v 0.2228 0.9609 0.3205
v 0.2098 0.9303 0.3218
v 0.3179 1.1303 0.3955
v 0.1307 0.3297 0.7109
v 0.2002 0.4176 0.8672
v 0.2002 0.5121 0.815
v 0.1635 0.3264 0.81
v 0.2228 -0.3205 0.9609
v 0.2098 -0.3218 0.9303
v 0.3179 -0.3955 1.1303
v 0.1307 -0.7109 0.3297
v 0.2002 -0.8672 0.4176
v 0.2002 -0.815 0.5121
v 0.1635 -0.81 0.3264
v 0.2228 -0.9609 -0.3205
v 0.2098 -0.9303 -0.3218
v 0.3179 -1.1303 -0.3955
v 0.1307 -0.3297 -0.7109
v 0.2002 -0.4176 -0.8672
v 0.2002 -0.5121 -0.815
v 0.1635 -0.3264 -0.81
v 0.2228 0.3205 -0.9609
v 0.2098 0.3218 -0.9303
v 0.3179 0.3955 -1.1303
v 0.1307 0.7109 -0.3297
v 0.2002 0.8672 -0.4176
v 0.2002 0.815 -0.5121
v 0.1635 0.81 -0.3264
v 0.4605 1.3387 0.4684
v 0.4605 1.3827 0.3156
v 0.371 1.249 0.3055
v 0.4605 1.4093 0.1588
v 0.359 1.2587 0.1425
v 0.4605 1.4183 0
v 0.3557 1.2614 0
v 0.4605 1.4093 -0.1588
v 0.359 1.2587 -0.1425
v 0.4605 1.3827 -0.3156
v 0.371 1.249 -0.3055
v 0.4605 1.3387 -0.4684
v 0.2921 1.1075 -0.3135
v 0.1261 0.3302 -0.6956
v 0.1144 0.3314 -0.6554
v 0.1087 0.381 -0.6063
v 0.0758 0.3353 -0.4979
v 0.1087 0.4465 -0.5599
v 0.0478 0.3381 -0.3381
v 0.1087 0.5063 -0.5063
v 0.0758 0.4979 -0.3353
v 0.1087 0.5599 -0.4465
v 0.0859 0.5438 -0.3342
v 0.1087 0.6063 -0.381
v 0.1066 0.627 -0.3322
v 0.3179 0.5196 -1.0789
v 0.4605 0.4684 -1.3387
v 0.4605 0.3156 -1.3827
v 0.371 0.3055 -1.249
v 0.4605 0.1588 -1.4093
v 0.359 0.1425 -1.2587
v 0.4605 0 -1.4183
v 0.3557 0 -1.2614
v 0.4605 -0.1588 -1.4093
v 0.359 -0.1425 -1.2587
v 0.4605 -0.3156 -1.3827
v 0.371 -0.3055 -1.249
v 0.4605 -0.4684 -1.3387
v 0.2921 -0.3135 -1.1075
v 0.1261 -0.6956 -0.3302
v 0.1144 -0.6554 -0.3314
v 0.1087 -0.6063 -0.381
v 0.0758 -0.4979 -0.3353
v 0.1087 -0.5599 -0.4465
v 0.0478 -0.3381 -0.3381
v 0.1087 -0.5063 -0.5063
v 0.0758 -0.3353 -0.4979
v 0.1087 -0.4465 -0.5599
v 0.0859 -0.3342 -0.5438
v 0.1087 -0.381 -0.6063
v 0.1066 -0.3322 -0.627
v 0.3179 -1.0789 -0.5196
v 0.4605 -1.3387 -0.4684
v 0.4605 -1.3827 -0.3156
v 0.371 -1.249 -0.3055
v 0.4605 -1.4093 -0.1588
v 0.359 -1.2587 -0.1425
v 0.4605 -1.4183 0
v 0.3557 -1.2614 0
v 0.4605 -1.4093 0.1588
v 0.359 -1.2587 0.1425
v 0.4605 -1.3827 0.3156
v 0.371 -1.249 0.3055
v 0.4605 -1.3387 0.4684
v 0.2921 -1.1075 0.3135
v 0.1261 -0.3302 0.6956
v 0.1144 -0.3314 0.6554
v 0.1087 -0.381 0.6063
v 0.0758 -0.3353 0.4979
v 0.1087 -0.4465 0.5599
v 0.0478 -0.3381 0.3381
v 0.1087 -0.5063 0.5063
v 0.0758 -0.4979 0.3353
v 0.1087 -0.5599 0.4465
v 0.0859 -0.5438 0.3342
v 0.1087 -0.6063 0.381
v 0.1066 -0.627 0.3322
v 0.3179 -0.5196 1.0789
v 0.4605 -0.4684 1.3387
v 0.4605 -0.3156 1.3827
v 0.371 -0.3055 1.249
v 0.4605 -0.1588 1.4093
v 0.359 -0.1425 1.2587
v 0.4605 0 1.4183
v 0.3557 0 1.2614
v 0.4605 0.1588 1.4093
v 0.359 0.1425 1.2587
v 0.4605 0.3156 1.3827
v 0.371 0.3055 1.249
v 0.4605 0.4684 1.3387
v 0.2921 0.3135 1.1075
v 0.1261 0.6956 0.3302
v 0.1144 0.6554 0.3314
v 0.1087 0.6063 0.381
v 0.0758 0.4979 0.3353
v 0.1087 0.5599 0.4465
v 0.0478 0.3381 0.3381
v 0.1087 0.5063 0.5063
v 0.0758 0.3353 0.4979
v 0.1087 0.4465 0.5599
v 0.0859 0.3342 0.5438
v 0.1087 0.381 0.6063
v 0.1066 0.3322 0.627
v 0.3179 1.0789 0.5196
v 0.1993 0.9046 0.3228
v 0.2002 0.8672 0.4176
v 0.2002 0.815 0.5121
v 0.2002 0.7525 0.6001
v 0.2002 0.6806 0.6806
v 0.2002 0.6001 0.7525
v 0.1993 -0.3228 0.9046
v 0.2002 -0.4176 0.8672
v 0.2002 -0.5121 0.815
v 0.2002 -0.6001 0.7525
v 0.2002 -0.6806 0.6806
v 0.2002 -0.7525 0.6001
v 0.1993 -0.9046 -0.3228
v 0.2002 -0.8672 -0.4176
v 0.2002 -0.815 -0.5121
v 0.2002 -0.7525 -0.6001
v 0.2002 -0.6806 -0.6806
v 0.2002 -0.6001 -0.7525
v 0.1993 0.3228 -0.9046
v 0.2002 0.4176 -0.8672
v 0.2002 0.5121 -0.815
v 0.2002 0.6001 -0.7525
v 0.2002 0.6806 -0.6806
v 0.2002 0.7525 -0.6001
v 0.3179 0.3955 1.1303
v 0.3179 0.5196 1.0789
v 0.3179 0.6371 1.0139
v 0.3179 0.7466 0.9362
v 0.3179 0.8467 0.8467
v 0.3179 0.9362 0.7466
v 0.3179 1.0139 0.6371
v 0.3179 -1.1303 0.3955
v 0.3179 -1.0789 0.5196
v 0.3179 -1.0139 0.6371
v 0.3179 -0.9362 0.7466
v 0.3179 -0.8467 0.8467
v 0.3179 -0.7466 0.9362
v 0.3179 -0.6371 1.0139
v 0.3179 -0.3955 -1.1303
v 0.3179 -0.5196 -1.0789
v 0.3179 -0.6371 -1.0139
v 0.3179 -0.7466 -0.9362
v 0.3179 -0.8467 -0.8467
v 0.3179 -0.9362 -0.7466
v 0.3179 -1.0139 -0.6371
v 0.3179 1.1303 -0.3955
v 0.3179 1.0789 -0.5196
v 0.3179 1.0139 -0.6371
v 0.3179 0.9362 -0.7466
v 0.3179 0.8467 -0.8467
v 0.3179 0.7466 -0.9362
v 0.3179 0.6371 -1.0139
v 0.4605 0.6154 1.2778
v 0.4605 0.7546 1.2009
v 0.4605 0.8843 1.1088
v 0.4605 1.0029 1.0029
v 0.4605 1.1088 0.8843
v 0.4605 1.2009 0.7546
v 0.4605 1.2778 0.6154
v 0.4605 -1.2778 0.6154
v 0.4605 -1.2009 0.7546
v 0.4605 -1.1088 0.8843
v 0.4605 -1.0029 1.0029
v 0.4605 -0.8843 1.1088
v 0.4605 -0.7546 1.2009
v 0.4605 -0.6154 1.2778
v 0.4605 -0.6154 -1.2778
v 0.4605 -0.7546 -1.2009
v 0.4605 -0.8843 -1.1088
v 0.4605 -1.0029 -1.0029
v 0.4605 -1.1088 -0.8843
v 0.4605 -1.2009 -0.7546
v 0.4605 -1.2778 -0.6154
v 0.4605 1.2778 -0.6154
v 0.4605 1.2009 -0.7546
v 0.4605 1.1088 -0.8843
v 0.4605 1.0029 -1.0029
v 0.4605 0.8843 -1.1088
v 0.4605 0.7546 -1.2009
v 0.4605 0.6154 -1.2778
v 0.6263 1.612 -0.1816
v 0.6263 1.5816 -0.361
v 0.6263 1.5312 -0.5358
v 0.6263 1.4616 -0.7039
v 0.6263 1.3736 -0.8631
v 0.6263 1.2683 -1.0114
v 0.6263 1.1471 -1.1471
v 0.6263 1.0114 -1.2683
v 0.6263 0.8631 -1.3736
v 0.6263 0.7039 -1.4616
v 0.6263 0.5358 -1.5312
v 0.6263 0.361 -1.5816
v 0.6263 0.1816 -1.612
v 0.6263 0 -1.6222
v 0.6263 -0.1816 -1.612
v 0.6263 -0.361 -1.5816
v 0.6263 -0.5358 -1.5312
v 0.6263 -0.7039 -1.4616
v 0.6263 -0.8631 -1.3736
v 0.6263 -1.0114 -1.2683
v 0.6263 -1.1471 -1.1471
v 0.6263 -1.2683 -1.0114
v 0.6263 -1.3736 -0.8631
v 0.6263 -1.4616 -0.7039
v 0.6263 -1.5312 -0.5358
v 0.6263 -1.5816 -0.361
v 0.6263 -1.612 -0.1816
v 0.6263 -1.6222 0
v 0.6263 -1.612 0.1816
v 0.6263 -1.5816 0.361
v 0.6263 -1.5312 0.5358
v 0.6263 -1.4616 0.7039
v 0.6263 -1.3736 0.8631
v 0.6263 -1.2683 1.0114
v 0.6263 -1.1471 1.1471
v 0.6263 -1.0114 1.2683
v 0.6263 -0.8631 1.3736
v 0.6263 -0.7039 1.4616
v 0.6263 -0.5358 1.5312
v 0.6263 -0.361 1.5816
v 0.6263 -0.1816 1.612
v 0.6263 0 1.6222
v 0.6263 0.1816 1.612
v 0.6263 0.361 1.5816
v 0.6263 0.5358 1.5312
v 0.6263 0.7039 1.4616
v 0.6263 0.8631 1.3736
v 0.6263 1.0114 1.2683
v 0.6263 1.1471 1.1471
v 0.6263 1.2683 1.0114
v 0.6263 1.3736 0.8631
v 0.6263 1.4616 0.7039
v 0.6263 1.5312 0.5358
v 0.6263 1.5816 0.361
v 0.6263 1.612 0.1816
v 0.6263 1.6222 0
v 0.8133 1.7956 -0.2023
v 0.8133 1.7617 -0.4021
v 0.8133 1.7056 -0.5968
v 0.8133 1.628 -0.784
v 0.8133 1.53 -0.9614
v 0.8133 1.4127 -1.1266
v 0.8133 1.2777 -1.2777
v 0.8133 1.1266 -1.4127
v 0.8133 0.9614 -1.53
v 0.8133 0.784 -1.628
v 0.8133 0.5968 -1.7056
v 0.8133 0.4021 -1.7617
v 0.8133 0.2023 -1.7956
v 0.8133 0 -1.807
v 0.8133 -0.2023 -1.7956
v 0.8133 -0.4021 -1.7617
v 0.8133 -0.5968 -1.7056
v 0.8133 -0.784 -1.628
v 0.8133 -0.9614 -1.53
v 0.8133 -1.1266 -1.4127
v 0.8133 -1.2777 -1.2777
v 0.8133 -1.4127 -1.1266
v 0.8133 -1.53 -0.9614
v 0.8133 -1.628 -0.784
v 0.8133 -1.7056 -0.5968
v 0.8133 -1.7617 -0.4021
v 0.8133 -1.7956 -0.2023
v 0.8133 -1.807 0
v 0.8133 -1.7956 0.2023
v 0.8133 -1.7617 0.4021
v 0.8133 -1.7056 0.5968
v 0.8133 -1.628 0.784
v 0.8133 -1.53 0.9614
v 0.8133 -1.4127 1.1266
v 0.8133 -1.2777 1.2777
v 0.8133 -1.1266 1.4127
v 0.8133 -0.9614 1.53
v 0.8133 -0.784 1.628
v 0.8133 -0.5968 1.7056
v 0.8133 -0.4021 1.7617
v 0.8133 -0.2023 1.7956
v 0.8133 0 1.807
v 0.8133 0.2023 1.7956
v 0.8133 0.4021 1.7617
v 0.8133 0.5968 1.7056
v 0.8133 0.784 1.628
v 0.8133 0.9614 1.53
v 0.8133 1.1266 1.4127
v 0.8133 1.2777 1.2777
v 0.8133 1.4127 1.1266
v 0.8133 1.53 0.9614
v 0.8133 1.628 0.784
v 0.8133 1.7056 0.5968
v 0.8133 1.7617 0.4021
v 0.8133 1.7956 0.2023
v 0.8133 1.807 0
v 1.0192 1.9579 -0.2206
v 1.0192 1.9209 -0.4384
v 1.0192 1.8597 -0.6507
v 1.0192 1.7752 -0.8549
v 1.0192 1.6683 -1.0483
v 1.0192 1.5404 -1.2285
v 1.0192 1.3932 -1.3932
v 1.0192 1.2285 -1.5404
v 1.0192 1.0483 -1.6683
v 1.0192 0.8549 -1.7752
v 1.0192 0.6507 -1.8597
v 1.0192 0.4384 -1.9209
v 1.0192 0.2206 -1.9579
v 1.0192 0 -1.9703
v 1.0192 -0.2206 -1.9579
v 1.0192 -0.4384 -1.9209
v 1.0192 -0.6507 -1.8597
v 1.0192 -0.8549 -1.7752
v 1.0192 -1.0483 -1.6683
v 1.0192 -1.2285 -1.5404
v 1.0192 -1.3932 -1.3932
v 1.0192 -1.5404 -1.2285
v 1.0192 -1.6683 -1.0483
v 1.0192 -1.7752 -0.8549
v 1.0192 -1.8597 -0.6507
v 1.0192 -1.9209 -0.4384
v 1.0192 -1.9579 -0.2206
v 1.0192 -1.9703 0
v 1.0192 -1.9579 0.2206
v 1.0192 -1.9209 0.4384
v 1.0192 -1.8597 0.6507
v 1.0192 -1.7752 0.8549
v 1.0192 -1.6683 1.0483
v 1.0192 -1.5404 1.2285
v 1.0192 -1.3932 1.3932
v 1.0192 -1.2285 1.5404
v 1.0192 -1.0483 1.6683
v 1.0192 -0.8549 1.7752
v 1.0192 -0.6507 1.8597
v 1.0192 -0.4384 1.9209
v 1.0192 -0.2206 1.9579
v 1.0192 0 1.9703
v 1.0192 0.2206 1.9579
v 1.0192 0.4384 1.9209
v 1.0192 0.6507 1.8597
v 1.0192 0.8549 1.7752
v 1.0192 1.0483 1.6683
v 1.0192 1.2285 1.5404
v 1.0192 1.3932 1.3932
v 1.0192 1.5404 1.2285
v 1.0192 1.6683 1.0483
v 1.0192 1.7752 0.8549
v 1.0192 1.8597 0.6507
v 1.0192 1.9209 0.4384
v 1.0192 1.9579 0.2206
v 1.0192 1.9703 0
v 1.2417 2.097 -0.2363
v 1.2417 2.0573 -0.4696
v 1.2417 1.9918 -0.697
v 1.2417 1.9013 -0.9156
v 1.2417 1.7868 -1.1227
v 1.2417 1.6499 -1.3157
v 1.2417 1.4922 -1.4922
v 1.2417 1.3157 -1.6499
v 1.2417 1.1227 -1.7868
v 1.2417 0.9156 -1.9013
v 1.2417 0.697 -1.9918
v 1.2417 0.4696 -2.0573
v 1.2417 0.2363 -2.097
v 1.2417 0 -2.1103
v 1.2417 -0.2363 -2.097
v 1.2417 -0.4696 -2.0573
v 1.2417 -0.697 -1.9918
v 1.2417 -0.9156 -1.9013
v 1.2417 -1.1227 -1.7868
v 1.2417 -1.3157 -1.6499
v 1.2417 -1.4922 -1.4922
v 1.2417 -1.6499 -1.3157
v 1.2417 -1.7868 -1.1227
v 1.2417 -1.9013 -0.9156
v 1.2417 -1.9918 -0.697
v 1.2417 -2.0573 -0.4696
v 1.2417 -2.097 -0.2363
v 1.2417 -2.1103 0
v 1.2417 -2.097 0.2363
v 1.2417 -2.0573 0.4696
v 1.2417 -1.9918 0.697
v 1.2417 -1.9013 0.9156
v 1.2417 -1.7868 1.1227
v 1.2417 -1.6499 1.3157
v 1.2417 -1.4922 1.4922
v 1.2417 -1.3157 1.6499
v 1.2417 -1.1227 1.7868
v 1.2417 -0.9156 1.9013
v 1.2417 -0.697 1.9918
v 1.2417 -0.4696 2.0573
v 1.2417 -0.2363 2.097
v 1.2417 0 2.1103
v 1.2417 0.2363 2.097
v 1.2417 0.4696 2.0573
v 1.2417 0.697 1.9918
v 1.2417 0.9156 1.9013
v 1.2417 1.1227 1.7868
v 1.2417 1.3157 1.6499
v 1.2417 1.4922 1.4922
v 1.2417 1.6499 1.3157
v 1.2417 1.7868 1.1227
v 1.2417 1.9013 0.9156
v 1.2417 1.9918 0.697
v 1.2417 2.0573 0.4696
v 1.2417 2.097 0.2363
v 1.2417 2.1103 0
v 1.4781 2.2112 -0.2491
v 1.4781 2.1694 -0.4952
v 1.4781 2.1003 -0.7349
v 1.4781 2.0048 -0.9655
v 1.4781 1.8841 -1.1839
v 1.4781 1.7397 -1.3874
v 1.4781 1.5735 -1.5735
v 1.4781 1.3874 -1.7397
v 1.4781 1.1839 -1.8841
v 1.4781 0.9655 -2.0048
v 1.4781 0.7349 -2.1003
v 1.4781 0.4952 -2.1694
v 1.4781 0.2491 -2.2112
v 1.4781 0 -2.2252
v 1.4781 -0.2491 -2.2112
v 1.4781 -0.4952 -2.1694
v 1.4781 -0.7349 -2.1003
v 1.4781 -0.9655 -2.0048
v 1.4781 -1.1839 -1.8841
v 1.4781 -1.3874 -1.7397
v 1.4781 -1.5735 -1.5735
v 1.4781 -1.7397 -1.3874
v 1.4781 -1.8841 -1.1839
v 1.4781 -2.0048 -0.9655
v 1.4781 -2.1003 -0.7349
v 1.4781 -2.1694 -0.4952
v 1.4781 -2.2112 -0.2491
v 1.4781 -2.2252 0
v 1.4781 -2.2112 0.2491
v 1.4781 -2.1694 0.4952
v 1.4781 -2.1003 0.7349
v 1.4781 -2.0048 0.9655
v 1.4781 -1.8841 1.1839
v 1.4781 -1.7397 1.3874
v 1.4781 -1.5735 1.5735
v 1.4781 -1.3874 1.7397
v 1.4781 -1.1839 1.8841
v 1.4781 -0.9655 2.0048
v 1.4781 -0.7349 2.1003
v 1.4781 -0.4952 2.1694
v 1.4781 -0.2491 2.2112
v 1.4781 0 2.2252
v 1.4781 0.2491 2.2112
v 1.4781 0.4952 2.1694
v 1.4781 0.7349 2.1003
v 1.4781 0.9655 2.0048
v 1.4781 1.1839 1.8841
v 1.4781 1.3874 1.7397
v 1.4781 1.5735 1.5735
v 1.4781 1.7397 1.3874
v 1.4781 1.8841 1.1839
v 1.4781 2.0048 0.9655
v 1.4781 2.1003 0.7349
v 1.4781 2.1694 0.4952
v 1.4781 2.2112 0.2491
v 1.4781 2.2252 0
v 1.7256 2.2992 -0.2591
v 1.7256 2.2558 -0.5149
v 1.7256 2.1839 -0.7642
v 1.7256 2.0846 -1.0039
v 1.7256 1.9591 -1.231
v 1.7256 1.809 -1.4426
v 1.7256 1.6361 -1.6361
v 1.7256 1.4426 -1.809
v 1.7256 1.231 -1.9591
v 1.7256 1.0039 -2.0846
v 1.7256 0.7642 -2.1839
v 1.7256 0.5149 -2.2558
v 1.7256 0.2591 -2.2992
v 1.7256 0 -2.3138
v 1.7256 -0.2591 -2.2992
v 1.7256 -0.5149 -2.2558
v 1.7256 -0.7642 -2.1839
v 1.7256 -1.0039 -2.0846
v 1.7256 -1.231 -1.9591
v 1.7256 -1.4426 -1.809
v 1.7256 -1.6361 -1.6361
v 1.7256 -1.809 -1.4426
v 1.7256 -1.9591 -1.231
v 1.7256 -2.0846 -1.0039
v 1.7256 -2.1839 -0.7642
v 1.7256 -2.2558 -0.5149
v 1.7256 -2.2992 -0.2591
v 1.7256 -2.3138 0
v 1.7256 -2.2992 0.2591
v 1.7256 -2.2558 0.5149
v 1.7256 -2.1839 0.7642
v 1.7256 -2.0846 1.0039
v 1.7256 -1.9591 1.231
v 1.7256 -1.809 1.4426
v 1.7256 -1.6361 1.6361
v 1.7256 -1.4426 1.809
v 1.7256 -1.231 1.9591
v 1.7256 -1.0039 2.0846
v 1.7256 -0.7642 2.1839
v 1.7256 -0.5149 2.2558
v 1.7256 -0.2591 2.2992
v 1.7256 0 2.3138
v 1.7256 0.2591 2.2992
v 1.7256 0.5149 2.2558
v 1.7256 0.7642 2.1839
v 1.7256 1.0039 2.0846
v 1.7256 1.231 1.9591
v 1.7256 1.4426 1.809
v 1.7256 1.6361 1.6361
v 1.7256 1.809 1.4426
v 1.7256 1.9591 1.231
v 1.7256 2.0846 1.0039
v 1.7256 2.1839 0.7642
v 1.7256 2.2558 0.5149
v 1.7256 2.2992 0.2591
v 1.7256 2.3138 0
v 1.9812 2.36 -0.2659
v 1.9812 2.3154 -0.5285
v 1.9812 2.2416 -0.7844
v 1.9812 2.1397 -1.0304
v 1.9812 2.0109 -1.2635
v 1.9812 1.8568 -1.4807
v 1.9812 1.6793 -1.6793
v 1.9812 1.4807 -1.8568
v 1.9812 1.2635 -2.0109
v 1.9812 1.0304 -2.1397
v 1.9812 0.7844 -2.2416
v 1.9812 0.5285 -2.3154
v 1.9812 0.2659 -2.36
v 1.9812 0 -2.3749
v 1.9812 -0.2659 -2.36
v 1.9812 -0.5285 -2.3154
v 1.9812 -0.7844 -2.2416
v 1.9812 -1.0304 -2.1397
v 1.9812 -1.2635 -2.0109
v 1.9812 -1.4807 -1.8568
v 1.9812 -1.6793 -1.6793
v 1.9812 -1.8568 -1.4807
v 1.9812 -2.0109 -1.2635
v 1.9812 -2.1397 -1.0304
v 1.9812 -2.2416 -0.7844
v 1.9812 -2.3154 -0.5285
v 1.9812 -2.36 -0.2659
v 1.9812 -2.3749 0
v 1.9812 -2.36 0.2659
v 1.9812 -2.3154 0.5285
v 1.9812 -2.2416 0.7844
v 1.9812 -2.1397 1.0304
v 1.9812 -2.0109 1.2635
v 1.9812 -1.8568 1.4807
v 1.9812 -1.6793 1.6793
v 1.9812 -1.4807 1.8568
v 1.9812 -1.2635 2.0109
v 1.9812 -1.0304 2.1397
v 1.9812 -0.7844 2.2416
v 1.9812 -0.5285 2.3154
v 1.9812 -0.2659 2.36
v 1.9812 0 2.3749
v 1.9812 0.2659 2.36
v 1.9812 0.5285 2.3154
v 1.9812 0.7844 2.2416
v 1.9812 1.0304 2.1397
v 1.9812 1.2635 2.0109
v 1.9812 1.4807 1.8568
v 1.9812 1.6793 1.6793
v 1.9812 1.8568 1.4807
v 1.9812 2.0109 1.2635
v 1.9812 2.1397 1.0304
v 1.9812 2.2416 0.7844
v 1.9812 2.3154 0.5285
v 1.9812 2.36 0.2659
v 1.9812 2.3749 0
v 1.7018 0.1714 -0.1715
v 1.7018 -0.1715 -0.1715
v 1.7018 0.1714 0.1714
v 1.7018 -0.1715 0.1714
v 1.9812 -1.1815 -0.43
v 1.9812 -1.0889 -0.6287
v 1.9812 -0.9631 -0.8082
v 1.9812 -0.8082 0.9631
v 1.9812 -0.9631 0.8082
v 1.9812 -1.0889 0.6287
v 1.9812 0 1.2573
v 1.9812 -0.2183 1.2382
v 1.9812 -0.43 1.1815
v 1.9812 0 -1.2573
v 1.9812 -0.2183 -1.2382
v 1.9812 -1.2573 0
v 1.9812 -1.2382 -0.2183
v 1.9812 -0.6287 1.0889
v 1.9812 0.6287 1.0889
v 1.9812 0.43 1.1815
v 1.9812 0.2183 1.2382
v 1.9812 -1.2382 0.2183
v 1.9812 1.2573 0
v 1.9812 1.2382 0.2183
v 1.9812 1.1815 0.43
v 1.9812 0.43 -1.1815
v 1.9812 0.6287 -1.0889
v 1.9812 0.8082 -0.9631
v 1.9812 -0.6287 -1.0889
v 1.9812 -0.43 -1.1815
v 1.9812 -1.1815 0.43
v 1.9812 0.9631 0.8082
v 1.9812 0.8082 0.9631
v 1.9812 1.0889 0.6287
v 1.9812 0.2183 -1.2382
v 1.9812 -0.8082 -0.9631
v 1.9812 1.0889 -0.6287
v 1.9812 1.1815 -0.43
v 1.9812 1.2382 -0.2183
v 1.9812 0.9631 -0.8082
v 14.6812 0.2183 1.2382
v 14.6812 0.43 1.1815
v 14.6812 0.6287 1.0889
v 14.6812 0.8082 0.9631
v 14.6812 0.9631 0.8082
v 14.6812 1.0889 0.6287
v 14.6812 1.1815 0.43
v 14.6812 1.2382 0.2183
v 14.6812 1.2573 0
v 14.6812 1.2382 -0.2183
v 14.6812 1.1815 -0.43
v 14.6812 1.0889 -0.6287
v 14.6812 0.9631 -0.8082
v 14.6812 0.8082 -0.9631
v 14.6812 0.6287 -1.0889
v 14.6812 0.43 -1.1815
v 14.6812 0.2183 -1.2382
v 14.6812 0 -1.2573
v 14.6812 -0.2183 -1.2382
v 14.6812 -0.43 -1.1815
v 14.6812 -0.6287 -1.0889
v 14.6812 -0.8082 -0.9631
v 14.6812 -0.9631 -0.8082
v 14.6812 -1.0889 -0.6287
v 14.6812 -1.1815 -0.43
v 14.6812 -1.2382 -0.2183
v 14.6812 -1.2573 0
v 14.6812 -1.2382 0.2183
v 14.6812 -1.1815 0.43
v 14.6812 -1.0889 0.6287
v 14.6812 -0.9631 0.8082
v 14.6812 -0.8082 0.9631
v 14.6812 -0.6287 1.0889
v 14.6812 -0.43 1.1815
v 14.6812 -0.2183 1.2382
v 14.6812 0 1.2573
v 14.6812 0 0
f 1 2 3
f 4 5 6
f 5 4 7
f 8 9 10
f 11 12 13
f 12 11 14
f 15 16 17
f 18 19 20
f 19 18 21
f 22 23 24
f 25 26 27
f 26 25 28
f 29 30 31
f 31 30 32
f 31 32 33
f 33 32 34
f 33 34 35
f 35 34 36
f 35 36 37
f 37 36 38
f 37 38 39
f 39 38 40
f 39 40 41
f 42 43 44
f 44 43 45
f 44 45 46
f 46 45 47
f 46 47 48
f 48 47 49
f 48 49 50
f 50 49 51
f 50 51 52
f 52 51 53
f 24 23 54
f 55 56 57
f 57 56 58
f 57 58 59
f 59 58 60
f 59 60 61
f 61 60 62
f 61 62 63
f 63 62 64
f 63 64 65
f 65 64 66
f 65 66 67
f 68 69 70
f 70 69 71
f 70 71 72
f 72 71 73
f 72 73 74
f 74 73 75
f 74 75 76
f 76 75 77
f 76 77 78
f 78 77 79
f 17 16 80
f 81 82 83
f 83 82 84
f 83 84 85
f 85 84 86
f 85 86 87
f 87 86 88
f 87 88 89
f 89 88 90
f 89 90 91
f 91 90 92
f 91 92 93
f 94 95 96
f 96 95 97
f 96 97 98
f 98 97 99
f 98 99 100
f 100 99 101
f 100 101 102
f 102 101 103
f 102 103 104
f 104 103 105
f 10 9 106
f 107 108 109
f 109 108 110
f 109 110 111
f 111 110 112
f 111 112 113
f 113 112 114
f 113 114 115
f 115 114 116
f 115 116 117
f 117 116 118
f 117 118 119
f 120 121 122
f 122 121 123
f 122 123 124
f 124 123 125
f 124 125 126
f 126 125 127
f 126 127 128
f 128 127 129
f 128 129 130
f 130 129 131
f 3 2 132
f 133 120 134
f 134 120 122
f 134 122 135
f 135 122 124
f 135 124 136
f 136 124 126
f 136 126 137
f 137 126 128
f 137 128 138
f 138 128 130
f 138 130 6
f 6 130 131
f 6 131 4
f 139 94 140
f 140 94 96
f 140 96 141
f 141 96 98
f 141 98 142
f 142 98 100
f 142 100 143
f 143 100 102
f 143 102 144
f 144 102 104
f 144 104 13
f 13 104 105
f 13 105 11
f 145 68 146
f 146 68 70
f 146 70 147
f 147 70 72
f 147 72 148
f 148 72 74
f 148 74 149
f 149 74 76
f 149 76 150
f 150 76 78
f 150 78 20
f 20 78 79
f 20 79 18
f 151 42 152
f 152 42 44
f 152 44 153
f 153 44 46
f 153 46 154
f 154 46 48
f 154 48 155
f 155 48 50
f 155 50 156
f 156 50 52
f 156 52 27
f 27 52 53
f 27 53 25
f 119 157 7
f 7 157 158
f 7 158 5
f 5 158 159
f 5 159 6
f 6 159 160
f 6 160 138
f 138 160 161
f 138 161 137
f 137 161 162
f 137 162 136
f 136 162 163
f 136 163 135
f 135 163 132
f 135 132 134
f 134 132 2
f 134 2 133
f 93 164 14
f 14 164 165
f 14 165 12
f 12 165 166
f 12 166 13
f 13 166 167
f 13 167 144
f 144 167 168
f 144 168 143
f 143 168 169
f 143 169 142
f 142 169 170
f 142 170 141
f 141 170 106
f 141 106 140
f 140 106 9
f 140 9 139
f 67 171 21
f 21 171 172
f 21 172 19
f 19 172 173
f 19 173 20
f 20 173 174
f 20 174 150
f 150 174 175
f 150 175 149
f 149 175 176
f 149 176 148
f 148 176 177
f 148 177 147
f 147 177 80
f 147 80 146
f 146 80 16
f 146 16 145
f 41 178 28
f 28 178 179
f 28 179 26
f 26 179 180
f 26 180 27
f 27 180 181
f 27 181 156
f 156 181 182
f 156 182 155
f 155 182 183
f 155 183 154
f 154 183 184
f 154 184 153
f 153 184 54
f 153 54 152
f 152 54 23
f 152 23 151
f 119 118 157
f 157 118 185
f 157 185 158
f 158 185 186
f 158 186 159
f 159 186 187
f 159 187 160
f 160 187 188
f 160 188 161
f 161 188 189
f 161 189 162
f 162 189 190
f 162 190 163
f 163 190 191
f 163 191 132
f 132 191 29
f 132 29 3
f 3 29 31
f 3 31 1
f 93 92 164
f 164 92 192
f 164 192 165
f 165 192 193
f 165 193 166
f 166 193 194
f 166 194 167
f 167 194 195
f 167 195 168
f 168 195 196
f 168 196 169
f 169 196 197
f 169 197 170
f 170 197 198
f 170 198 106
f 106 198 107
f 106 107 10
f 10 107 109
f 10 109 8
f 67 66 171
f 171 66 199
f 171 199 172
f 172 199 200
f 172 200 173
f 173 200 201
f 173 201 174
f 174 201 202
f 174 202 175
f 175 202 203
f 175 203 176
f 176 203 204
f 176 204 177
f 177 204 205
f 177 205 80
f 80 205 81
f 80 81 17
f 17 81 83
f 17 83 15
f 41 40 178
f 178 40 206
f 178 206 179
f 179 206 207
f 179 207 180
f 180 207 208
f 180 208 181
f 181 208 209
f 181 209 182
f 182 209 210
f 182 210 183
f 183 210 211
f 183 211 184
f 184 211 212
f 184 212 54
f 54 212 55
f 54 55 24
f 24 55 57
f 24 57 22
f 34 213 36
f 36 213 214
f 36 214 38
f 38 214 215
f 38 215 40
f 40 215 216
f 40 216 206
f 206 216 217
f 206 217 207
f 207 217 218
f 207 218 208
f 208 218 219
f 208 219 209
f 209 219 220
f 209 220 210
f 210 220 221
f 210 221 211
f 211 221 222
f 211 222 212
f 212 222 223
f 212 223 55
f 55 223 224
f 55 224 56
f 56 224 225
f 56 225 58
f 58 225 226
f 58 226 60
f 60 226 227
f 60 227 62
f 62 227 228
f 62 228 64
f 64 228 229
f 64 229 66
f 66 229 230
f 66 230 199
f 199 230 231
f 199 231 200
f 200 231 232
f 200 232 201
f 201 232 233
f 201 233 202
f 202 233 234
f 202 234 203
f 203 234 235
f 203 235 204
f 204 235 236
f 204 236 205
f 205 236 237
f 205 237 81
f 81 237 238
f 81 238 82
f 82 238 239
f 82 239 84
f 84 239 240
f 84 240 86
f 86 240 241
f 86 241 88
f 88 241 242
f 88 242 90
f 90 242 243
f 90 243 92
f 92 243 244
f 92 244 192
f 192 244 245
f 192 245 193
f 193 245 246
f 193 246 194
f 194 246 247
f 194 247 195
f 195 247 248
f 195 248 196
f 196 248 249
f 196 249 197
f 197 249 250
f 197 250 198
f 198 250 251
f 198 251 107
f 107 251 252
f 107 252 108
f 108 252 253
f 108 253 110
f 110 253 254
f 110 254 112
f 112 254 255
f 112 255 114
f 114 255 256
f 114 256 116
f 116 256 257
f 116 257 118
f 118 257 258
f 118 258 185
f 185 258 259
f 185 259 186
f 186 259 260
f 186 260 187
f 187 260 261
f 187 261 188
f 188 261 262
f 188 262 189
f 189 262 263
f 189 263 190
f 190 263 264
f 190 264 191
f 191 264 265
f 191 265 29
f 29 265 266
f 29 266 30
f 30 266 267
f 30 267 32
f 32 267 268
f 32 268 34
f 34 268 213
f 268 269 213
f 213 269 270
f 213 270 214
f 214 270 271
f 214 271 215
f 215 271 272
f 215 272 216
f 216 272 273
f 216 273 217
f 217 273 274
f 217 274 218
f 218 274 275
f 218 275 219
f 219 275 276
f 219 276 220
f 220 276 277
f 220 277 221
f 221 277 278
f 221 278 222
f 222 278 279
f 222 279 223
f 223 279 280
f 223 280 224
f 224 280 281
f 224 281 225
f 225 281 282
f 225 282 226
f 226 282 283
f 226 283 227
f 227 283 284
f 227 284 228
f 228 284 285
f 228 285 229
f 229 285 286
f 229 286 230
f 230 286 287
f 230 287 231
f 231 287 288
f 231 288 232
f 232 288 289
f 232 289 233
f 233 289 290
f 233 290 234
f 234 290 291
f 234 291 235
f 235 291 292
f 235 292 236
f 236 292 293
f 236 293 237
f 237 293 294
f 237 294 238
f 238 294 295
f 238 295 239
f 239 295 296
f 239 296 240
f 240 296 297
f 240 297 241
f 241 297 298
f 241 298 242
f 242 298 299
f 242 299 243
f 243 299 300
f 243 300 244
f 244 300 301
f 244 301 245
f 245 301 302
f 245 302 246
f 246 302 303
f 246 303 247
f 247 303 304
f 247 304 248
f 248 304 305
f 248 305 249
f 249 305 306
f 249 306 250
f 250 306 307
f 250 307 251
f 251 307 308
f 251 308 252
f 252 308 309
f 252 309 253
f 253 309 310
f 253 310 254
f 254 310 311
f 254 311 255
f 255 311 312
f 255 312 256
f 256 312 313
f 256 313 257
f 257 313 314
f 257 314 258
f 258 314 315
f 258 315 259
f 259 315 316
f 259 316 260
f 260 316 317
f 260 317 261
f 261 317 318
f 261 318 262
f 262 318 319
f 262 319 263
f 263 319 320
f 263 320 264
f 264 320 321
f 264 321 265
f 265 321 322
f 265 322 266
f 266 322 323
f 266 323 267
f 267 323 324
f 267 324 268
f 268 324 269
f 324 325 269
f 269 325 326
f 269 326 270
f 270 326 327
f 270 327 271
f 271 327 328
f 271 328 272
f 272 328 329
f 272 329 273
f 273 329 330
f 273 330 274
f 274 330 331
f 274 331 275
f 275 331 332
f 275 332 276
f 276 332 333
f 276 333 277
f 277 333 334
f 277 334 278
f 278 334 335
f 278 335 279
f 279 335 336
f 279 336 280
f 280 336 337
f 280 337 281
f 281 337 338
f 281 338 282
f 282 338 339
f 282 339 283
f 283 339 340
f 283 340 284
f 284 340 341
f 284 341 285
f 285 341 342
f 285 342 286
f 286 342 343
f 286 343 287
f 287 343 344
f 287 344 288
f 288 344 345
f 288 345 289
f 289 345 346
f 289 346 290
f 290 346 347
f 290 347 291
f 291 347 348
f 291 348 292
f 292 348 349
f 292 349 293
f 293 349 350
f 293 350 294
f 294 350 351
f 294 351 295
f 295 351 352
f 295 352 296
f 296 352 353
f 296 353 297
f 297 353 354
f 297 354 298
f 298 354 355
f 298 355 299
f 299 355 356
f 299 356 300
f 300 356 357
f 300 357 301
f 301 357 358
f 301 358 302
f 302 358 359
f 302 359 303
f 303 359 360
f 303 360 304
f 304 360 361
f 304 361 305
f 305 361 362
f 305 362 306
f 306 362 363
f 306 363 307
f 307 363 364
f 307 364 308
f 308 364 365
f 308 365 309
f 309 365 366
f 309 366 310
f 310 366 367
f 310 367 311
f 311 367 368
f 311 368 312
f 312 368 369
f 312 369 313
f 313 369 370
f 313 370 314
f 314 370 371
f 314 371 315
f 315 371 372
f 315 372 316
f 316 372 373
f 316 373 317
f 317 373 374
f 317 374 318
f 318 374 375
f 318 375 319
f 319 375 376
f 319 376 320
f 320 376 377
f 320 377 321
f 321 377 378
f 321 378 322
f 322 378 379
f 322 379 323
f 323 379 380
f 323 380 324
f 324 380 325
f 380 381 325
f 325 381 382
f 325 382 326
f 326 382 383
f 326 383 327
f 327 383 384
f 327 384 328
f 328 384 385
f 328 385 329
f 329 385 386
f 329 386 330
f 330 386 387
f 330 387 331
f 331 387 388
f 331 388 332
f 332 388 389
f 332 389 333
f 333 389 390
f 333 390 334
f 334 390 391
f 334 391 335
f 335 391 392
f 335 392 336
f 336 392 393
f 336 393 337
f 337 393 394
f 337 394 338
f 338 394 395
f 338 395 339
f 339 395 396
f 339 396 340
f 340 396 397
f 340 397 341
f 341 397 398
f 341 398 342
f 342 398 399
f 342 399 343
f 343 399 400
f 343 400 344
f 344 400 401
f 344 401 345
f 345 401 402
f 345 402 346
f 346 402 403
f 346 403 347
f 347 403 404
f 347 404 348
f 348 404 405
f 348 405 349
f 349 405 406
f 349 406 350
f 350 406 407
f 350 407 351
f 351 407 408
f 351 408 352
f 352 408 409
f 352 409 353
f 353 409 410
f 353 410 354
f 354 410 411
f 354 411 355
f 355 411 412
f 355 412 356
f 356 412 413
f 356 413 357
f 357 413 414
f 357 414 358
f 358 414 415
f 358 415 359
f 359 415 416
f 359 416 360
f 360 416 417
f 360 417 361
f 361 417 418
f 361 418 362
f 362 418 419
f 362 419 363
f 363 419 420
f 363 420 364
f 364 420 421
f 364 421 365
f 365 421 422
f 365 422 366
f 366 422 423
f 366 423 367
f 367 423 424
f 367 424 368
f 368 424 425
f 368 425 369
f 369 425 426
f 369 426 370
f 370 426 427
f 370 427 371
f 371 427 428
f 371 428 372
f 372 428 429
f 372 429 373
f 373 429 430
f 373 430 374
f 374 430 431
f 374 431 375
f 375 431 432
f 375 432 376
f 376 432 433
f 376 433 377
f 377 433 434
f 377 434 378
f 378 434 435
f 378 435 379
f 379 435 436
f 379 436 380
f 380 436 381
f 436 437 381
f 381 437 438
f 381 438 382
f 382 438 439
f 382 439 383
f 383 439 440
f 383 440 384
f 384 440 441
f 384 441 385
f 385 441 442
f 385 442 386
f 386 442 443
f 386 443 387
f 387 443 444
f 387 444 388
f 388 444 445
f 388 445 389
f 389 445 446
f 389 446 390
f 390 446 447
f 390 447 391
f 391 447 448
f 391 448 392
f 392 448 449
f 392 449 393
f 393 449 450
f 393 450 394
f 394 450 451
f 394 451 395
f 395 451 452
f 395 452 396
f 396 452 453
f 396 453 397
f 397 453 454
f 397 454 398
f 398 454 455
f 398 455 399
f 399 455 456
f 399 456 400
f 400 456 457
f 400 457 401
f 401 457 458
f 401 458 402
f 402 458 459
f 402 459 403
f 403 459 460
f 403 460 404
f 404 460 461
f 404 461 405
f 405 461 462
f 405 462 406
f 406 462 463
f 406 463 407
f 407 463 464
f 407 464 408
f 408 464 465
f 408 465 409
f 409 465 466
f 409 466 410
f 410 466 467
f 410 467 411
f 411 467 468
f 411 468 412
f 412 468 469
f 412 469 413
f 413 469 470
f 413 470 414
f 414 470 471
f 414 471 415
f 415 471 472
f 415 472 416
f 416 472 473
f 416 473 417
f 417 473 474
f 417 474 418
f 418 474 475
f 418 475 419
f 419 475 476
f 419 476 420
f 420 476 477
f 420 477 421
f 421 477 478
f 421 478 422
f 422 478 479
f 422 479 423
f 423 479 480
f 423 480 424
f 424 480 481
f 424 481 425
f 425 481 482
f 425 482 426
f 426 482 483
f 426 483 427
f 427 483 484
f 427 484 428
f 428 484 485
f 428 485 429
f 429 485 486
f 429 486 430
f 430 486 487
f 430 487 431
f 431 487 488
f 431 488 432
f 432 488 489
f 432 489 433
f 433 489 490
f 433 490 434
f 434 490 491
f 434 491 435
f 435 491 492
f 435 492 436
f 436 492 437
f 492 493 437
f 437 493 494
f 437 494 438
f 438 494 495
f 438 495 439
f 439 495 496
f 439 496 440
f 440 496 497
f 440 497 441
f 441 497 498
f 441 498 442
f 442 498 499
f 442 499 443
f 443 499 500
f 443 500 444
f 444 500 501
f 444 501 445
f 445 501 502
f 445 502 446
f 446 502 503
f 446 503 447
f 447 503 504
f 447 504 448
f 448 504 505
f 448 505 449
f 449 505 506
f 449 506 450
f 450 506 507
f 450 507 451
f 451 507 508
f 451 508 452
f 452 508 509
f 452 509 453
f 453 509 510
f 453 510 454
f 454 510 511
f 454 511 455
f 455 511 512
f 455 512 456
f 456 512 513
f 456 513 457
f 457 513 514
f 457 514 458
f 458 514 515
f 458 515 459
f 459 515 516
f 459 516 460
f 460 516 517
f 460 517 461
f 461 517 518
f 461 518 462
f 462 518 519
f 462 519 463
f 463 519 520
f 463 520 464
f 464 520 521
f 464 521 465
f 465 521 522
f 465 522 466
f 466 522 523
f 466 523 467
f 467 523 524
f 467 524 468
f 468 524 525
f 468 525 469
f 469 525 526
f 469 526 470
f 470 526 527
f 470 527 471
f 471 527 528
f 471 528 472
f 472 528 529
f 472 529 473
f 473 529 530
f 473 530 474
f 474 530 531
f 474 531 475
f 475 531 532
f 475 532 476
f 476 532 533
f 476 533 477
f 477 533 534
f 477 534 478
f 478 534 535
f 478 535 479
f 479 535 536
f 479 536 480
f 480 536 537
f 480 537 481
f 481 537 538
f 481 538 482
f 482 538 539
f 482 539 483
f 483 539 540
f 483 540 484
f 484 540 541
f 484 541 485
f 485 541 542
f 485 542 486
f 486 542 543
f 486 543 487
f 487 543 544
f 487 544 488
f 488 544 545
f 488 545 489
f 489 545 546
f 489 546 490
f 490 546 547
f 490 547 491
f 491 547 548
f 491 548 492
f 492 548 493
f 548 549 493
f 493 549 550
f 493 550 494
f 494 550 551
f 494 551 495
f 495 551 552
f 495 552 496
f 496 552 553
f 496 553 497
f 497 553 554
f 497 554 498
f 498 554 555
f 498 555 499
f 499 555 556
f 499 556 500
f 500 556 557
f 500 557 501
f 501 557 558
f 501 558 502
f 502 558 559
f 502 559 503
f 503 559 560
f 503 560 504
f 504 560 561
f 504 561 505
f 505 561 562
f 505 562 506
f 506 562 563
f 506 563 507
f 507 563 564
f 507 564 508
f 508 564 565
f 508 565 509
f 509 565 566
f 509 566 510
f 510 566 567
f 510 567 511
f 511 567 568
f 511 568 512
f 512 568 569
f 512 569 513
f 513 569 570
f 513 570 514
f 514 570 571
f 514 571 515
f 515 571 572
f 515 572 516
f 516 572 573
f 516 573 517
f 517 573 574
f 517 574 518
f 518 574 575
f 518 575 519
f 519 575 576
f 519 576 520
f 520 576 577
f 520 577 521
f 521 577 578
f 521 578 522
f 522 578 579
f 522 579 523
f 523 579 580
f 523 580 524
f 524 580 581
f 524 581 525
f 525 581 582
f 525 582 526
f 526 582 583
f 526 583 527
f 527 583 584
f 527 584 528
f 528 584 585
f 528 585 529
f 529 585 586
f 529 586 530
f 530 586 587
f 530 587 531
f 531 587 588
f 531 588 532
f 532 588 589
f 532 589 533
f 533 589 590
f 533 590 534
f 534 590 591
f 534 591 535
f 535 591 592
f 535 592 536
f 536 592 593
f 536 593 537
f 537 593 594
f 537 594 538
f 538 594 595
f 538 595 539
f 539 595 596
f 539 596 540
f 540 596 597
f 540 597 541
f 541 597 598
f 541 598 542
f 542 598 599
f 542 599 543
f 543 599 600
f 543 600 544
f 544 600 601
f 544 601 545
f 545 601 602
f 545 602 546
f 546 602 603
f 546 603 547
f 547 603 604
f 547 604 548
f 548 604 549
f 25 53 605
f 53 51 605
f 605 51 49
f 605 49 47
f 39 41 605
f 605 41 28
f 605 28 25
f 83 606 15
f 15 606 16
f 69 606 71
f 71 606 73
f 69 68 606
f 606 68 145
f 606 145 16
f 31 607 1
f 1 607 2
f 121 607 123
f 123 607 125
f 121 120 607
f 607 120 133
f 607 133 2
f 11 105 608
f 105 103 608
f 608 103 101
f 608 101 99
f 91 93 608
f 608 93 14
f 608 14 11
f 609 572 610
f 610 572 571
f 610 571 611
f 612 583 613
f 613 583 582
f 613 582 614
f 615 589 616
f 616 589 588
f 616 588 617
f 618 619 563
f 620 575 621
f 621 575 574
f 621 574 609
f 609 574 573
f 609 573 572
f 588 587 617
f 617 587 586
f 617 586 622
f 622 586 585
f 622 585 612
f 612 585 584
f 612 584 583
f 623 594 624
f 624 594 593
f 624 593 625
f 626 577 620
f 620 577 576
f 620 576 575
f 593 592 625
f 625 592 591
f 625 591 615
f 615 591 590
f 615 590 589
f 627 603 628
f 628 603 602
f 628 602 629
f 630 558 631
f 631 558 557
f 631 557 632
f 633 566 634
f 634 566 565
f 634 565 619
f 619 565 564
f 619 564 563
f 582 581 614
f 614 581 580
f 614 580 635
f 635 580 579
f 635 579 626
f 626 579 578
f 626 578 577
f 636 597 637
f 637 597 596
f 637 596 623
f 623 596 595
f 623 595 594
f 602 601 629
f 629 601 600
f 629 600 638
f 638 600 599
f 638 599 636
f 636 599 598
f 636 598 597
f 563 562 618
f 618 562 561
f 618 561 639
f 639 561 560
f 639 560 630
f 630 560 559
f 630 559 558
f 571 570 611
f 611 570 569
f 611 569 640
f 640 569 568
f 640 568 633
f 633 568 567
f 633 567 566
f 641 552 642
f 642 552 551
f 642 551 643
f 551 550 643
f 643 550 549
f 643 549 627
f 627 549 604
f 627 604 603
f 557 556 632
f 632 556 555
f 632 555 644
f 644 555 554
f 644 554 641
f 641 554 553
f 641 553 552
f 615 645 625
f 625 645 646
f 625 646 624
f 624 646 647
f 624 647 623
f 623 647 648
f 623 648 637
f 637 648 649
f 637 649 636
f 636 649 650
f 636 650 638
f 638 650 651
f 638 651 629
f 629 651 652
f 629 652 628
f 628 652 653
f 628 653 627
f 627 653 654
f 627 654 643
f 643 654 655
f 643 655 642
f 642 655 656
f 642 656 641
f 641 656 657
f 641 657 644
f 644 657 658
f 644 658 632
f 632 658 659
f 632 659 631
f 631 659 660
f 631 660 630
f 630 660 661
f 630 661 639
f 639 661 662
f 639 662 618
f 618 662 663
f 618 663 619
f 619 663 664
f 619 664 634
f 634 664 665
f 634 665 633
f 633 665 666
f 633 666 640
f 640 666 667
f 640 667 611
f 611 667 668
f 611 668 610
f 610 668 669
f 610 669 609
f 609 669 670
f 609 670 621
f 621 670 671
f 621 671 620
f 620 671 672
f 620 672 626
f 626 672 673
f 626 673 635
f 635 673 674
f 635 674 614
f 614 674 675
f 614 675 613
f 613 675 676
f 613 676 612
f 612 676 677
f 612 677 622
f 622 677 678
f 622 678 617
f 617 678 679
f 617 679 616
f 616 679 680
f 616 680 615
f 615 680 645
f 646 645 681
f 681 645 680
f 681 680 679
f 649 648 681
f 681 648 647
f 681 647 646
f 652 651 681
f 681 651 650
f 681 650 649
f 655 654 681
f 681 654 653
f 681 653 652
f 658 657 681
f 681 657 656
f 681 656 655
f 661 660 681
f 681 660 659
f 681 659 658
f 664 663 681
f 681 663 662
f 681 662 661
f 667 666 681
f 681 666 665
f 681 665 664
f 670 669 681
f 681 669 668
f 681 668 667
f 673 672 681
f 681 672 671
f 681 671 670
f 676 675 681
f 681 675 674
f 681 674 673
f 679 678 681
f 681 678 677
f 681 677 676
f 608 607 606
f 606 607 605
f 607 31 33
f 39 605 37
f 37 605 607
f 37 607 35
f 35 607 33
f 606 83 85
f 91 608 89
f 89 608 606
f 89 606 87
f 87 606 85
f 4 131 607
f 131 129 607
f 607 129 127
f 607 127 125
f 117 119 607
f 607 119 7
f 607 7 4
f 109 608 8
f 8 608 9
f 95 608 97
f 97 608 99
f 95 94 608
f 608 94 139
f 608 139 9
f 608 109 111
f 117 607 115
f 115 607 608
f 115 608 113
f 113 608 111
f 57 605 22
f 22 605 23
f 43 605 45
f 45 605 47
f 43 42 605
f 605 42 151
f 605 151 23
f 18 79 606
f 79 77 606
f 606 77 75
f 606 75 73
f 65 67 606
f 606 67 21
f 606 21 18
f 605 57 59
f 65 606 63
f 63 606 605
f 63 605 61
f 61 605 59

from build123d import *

# Parameters (mm, degrees)
CIRPATTERN1_COUNT = 2
CIRPATTERN1_ANGLE = 90


# Read off the part's stored shape, not the designer's step: ThreadSchematic
with BuildPart() as part:
    # ThreadSchematic outline → ThreadSchematic (revolve)
    with BuildSketch(Plane.YX):
        with BuildLine():
            Line((0, 14.6812), (0, 0))
            ThreePointArc((0, 0), (1.546391238, 0.560330696), (2.3749, 1.981200001))
            Line((2.3749, 1.981200001), (1.2573, 1.9812))
            Line((1.2573, 1.9812), (1.2573, 14.6812))
            Line((1.2573, 14.6812), (0, 14.6812))
        make_face()
    revolve(axis=Axis((0, 0, 0), (1, 0, 0)))

    # Sketch3 → Cross section 0
    with BuildSketch(Plane(origin=(0, 0, 0), x_dir=(0, 0, -1), z_dir=(1, 0, 0))):
        with BuildLine():
            Line((0.3429, -1.5494), (-0.3429, -1.5494))
            Line((-0.3429, -1.5494), (-0.3429, 1.5494))
            Line((-0.3429, 1.5494), (0.3429, 1.5494))
            Line((0.3429, 1.5494), (0.3429, -1.5494))
        make_face()
    # Sketch4 → Cross section 1
    with BuildSketch(Plane(origin=(1.7018, 0, 0), x_dir=(0, 0, -1), z_dir=(1, 0, 0))):
        with BuildLine():
            Line((0.17145, -0.17145), (-0.17145, -0.17145))
            Line((-0.17145, -0.17145), (-0.17145, 0.17145))
            Line((-0.17145, 0.17145), (0.17145, 0.17145))
            Line((0.17145, 0.17145), (0.17145, -0.17145))
        make_face()
    cross = loft(mode=Mode.SUBTRACT)

    # CirPattern1: Cross ×2 about axis
    cirpattern1_axis = Axis((0, 0, 0), (1, 0, 0))
    for i in range(1, CIRPATTERN1_COUNT):
        add(cross.rotate(cirpattern1_axis, i * CIRPATTERN1_ANGLE / (CIRPATTERN1_COUNT - 1)), mode=Mode.SUBTRACT)


solid = part.part
